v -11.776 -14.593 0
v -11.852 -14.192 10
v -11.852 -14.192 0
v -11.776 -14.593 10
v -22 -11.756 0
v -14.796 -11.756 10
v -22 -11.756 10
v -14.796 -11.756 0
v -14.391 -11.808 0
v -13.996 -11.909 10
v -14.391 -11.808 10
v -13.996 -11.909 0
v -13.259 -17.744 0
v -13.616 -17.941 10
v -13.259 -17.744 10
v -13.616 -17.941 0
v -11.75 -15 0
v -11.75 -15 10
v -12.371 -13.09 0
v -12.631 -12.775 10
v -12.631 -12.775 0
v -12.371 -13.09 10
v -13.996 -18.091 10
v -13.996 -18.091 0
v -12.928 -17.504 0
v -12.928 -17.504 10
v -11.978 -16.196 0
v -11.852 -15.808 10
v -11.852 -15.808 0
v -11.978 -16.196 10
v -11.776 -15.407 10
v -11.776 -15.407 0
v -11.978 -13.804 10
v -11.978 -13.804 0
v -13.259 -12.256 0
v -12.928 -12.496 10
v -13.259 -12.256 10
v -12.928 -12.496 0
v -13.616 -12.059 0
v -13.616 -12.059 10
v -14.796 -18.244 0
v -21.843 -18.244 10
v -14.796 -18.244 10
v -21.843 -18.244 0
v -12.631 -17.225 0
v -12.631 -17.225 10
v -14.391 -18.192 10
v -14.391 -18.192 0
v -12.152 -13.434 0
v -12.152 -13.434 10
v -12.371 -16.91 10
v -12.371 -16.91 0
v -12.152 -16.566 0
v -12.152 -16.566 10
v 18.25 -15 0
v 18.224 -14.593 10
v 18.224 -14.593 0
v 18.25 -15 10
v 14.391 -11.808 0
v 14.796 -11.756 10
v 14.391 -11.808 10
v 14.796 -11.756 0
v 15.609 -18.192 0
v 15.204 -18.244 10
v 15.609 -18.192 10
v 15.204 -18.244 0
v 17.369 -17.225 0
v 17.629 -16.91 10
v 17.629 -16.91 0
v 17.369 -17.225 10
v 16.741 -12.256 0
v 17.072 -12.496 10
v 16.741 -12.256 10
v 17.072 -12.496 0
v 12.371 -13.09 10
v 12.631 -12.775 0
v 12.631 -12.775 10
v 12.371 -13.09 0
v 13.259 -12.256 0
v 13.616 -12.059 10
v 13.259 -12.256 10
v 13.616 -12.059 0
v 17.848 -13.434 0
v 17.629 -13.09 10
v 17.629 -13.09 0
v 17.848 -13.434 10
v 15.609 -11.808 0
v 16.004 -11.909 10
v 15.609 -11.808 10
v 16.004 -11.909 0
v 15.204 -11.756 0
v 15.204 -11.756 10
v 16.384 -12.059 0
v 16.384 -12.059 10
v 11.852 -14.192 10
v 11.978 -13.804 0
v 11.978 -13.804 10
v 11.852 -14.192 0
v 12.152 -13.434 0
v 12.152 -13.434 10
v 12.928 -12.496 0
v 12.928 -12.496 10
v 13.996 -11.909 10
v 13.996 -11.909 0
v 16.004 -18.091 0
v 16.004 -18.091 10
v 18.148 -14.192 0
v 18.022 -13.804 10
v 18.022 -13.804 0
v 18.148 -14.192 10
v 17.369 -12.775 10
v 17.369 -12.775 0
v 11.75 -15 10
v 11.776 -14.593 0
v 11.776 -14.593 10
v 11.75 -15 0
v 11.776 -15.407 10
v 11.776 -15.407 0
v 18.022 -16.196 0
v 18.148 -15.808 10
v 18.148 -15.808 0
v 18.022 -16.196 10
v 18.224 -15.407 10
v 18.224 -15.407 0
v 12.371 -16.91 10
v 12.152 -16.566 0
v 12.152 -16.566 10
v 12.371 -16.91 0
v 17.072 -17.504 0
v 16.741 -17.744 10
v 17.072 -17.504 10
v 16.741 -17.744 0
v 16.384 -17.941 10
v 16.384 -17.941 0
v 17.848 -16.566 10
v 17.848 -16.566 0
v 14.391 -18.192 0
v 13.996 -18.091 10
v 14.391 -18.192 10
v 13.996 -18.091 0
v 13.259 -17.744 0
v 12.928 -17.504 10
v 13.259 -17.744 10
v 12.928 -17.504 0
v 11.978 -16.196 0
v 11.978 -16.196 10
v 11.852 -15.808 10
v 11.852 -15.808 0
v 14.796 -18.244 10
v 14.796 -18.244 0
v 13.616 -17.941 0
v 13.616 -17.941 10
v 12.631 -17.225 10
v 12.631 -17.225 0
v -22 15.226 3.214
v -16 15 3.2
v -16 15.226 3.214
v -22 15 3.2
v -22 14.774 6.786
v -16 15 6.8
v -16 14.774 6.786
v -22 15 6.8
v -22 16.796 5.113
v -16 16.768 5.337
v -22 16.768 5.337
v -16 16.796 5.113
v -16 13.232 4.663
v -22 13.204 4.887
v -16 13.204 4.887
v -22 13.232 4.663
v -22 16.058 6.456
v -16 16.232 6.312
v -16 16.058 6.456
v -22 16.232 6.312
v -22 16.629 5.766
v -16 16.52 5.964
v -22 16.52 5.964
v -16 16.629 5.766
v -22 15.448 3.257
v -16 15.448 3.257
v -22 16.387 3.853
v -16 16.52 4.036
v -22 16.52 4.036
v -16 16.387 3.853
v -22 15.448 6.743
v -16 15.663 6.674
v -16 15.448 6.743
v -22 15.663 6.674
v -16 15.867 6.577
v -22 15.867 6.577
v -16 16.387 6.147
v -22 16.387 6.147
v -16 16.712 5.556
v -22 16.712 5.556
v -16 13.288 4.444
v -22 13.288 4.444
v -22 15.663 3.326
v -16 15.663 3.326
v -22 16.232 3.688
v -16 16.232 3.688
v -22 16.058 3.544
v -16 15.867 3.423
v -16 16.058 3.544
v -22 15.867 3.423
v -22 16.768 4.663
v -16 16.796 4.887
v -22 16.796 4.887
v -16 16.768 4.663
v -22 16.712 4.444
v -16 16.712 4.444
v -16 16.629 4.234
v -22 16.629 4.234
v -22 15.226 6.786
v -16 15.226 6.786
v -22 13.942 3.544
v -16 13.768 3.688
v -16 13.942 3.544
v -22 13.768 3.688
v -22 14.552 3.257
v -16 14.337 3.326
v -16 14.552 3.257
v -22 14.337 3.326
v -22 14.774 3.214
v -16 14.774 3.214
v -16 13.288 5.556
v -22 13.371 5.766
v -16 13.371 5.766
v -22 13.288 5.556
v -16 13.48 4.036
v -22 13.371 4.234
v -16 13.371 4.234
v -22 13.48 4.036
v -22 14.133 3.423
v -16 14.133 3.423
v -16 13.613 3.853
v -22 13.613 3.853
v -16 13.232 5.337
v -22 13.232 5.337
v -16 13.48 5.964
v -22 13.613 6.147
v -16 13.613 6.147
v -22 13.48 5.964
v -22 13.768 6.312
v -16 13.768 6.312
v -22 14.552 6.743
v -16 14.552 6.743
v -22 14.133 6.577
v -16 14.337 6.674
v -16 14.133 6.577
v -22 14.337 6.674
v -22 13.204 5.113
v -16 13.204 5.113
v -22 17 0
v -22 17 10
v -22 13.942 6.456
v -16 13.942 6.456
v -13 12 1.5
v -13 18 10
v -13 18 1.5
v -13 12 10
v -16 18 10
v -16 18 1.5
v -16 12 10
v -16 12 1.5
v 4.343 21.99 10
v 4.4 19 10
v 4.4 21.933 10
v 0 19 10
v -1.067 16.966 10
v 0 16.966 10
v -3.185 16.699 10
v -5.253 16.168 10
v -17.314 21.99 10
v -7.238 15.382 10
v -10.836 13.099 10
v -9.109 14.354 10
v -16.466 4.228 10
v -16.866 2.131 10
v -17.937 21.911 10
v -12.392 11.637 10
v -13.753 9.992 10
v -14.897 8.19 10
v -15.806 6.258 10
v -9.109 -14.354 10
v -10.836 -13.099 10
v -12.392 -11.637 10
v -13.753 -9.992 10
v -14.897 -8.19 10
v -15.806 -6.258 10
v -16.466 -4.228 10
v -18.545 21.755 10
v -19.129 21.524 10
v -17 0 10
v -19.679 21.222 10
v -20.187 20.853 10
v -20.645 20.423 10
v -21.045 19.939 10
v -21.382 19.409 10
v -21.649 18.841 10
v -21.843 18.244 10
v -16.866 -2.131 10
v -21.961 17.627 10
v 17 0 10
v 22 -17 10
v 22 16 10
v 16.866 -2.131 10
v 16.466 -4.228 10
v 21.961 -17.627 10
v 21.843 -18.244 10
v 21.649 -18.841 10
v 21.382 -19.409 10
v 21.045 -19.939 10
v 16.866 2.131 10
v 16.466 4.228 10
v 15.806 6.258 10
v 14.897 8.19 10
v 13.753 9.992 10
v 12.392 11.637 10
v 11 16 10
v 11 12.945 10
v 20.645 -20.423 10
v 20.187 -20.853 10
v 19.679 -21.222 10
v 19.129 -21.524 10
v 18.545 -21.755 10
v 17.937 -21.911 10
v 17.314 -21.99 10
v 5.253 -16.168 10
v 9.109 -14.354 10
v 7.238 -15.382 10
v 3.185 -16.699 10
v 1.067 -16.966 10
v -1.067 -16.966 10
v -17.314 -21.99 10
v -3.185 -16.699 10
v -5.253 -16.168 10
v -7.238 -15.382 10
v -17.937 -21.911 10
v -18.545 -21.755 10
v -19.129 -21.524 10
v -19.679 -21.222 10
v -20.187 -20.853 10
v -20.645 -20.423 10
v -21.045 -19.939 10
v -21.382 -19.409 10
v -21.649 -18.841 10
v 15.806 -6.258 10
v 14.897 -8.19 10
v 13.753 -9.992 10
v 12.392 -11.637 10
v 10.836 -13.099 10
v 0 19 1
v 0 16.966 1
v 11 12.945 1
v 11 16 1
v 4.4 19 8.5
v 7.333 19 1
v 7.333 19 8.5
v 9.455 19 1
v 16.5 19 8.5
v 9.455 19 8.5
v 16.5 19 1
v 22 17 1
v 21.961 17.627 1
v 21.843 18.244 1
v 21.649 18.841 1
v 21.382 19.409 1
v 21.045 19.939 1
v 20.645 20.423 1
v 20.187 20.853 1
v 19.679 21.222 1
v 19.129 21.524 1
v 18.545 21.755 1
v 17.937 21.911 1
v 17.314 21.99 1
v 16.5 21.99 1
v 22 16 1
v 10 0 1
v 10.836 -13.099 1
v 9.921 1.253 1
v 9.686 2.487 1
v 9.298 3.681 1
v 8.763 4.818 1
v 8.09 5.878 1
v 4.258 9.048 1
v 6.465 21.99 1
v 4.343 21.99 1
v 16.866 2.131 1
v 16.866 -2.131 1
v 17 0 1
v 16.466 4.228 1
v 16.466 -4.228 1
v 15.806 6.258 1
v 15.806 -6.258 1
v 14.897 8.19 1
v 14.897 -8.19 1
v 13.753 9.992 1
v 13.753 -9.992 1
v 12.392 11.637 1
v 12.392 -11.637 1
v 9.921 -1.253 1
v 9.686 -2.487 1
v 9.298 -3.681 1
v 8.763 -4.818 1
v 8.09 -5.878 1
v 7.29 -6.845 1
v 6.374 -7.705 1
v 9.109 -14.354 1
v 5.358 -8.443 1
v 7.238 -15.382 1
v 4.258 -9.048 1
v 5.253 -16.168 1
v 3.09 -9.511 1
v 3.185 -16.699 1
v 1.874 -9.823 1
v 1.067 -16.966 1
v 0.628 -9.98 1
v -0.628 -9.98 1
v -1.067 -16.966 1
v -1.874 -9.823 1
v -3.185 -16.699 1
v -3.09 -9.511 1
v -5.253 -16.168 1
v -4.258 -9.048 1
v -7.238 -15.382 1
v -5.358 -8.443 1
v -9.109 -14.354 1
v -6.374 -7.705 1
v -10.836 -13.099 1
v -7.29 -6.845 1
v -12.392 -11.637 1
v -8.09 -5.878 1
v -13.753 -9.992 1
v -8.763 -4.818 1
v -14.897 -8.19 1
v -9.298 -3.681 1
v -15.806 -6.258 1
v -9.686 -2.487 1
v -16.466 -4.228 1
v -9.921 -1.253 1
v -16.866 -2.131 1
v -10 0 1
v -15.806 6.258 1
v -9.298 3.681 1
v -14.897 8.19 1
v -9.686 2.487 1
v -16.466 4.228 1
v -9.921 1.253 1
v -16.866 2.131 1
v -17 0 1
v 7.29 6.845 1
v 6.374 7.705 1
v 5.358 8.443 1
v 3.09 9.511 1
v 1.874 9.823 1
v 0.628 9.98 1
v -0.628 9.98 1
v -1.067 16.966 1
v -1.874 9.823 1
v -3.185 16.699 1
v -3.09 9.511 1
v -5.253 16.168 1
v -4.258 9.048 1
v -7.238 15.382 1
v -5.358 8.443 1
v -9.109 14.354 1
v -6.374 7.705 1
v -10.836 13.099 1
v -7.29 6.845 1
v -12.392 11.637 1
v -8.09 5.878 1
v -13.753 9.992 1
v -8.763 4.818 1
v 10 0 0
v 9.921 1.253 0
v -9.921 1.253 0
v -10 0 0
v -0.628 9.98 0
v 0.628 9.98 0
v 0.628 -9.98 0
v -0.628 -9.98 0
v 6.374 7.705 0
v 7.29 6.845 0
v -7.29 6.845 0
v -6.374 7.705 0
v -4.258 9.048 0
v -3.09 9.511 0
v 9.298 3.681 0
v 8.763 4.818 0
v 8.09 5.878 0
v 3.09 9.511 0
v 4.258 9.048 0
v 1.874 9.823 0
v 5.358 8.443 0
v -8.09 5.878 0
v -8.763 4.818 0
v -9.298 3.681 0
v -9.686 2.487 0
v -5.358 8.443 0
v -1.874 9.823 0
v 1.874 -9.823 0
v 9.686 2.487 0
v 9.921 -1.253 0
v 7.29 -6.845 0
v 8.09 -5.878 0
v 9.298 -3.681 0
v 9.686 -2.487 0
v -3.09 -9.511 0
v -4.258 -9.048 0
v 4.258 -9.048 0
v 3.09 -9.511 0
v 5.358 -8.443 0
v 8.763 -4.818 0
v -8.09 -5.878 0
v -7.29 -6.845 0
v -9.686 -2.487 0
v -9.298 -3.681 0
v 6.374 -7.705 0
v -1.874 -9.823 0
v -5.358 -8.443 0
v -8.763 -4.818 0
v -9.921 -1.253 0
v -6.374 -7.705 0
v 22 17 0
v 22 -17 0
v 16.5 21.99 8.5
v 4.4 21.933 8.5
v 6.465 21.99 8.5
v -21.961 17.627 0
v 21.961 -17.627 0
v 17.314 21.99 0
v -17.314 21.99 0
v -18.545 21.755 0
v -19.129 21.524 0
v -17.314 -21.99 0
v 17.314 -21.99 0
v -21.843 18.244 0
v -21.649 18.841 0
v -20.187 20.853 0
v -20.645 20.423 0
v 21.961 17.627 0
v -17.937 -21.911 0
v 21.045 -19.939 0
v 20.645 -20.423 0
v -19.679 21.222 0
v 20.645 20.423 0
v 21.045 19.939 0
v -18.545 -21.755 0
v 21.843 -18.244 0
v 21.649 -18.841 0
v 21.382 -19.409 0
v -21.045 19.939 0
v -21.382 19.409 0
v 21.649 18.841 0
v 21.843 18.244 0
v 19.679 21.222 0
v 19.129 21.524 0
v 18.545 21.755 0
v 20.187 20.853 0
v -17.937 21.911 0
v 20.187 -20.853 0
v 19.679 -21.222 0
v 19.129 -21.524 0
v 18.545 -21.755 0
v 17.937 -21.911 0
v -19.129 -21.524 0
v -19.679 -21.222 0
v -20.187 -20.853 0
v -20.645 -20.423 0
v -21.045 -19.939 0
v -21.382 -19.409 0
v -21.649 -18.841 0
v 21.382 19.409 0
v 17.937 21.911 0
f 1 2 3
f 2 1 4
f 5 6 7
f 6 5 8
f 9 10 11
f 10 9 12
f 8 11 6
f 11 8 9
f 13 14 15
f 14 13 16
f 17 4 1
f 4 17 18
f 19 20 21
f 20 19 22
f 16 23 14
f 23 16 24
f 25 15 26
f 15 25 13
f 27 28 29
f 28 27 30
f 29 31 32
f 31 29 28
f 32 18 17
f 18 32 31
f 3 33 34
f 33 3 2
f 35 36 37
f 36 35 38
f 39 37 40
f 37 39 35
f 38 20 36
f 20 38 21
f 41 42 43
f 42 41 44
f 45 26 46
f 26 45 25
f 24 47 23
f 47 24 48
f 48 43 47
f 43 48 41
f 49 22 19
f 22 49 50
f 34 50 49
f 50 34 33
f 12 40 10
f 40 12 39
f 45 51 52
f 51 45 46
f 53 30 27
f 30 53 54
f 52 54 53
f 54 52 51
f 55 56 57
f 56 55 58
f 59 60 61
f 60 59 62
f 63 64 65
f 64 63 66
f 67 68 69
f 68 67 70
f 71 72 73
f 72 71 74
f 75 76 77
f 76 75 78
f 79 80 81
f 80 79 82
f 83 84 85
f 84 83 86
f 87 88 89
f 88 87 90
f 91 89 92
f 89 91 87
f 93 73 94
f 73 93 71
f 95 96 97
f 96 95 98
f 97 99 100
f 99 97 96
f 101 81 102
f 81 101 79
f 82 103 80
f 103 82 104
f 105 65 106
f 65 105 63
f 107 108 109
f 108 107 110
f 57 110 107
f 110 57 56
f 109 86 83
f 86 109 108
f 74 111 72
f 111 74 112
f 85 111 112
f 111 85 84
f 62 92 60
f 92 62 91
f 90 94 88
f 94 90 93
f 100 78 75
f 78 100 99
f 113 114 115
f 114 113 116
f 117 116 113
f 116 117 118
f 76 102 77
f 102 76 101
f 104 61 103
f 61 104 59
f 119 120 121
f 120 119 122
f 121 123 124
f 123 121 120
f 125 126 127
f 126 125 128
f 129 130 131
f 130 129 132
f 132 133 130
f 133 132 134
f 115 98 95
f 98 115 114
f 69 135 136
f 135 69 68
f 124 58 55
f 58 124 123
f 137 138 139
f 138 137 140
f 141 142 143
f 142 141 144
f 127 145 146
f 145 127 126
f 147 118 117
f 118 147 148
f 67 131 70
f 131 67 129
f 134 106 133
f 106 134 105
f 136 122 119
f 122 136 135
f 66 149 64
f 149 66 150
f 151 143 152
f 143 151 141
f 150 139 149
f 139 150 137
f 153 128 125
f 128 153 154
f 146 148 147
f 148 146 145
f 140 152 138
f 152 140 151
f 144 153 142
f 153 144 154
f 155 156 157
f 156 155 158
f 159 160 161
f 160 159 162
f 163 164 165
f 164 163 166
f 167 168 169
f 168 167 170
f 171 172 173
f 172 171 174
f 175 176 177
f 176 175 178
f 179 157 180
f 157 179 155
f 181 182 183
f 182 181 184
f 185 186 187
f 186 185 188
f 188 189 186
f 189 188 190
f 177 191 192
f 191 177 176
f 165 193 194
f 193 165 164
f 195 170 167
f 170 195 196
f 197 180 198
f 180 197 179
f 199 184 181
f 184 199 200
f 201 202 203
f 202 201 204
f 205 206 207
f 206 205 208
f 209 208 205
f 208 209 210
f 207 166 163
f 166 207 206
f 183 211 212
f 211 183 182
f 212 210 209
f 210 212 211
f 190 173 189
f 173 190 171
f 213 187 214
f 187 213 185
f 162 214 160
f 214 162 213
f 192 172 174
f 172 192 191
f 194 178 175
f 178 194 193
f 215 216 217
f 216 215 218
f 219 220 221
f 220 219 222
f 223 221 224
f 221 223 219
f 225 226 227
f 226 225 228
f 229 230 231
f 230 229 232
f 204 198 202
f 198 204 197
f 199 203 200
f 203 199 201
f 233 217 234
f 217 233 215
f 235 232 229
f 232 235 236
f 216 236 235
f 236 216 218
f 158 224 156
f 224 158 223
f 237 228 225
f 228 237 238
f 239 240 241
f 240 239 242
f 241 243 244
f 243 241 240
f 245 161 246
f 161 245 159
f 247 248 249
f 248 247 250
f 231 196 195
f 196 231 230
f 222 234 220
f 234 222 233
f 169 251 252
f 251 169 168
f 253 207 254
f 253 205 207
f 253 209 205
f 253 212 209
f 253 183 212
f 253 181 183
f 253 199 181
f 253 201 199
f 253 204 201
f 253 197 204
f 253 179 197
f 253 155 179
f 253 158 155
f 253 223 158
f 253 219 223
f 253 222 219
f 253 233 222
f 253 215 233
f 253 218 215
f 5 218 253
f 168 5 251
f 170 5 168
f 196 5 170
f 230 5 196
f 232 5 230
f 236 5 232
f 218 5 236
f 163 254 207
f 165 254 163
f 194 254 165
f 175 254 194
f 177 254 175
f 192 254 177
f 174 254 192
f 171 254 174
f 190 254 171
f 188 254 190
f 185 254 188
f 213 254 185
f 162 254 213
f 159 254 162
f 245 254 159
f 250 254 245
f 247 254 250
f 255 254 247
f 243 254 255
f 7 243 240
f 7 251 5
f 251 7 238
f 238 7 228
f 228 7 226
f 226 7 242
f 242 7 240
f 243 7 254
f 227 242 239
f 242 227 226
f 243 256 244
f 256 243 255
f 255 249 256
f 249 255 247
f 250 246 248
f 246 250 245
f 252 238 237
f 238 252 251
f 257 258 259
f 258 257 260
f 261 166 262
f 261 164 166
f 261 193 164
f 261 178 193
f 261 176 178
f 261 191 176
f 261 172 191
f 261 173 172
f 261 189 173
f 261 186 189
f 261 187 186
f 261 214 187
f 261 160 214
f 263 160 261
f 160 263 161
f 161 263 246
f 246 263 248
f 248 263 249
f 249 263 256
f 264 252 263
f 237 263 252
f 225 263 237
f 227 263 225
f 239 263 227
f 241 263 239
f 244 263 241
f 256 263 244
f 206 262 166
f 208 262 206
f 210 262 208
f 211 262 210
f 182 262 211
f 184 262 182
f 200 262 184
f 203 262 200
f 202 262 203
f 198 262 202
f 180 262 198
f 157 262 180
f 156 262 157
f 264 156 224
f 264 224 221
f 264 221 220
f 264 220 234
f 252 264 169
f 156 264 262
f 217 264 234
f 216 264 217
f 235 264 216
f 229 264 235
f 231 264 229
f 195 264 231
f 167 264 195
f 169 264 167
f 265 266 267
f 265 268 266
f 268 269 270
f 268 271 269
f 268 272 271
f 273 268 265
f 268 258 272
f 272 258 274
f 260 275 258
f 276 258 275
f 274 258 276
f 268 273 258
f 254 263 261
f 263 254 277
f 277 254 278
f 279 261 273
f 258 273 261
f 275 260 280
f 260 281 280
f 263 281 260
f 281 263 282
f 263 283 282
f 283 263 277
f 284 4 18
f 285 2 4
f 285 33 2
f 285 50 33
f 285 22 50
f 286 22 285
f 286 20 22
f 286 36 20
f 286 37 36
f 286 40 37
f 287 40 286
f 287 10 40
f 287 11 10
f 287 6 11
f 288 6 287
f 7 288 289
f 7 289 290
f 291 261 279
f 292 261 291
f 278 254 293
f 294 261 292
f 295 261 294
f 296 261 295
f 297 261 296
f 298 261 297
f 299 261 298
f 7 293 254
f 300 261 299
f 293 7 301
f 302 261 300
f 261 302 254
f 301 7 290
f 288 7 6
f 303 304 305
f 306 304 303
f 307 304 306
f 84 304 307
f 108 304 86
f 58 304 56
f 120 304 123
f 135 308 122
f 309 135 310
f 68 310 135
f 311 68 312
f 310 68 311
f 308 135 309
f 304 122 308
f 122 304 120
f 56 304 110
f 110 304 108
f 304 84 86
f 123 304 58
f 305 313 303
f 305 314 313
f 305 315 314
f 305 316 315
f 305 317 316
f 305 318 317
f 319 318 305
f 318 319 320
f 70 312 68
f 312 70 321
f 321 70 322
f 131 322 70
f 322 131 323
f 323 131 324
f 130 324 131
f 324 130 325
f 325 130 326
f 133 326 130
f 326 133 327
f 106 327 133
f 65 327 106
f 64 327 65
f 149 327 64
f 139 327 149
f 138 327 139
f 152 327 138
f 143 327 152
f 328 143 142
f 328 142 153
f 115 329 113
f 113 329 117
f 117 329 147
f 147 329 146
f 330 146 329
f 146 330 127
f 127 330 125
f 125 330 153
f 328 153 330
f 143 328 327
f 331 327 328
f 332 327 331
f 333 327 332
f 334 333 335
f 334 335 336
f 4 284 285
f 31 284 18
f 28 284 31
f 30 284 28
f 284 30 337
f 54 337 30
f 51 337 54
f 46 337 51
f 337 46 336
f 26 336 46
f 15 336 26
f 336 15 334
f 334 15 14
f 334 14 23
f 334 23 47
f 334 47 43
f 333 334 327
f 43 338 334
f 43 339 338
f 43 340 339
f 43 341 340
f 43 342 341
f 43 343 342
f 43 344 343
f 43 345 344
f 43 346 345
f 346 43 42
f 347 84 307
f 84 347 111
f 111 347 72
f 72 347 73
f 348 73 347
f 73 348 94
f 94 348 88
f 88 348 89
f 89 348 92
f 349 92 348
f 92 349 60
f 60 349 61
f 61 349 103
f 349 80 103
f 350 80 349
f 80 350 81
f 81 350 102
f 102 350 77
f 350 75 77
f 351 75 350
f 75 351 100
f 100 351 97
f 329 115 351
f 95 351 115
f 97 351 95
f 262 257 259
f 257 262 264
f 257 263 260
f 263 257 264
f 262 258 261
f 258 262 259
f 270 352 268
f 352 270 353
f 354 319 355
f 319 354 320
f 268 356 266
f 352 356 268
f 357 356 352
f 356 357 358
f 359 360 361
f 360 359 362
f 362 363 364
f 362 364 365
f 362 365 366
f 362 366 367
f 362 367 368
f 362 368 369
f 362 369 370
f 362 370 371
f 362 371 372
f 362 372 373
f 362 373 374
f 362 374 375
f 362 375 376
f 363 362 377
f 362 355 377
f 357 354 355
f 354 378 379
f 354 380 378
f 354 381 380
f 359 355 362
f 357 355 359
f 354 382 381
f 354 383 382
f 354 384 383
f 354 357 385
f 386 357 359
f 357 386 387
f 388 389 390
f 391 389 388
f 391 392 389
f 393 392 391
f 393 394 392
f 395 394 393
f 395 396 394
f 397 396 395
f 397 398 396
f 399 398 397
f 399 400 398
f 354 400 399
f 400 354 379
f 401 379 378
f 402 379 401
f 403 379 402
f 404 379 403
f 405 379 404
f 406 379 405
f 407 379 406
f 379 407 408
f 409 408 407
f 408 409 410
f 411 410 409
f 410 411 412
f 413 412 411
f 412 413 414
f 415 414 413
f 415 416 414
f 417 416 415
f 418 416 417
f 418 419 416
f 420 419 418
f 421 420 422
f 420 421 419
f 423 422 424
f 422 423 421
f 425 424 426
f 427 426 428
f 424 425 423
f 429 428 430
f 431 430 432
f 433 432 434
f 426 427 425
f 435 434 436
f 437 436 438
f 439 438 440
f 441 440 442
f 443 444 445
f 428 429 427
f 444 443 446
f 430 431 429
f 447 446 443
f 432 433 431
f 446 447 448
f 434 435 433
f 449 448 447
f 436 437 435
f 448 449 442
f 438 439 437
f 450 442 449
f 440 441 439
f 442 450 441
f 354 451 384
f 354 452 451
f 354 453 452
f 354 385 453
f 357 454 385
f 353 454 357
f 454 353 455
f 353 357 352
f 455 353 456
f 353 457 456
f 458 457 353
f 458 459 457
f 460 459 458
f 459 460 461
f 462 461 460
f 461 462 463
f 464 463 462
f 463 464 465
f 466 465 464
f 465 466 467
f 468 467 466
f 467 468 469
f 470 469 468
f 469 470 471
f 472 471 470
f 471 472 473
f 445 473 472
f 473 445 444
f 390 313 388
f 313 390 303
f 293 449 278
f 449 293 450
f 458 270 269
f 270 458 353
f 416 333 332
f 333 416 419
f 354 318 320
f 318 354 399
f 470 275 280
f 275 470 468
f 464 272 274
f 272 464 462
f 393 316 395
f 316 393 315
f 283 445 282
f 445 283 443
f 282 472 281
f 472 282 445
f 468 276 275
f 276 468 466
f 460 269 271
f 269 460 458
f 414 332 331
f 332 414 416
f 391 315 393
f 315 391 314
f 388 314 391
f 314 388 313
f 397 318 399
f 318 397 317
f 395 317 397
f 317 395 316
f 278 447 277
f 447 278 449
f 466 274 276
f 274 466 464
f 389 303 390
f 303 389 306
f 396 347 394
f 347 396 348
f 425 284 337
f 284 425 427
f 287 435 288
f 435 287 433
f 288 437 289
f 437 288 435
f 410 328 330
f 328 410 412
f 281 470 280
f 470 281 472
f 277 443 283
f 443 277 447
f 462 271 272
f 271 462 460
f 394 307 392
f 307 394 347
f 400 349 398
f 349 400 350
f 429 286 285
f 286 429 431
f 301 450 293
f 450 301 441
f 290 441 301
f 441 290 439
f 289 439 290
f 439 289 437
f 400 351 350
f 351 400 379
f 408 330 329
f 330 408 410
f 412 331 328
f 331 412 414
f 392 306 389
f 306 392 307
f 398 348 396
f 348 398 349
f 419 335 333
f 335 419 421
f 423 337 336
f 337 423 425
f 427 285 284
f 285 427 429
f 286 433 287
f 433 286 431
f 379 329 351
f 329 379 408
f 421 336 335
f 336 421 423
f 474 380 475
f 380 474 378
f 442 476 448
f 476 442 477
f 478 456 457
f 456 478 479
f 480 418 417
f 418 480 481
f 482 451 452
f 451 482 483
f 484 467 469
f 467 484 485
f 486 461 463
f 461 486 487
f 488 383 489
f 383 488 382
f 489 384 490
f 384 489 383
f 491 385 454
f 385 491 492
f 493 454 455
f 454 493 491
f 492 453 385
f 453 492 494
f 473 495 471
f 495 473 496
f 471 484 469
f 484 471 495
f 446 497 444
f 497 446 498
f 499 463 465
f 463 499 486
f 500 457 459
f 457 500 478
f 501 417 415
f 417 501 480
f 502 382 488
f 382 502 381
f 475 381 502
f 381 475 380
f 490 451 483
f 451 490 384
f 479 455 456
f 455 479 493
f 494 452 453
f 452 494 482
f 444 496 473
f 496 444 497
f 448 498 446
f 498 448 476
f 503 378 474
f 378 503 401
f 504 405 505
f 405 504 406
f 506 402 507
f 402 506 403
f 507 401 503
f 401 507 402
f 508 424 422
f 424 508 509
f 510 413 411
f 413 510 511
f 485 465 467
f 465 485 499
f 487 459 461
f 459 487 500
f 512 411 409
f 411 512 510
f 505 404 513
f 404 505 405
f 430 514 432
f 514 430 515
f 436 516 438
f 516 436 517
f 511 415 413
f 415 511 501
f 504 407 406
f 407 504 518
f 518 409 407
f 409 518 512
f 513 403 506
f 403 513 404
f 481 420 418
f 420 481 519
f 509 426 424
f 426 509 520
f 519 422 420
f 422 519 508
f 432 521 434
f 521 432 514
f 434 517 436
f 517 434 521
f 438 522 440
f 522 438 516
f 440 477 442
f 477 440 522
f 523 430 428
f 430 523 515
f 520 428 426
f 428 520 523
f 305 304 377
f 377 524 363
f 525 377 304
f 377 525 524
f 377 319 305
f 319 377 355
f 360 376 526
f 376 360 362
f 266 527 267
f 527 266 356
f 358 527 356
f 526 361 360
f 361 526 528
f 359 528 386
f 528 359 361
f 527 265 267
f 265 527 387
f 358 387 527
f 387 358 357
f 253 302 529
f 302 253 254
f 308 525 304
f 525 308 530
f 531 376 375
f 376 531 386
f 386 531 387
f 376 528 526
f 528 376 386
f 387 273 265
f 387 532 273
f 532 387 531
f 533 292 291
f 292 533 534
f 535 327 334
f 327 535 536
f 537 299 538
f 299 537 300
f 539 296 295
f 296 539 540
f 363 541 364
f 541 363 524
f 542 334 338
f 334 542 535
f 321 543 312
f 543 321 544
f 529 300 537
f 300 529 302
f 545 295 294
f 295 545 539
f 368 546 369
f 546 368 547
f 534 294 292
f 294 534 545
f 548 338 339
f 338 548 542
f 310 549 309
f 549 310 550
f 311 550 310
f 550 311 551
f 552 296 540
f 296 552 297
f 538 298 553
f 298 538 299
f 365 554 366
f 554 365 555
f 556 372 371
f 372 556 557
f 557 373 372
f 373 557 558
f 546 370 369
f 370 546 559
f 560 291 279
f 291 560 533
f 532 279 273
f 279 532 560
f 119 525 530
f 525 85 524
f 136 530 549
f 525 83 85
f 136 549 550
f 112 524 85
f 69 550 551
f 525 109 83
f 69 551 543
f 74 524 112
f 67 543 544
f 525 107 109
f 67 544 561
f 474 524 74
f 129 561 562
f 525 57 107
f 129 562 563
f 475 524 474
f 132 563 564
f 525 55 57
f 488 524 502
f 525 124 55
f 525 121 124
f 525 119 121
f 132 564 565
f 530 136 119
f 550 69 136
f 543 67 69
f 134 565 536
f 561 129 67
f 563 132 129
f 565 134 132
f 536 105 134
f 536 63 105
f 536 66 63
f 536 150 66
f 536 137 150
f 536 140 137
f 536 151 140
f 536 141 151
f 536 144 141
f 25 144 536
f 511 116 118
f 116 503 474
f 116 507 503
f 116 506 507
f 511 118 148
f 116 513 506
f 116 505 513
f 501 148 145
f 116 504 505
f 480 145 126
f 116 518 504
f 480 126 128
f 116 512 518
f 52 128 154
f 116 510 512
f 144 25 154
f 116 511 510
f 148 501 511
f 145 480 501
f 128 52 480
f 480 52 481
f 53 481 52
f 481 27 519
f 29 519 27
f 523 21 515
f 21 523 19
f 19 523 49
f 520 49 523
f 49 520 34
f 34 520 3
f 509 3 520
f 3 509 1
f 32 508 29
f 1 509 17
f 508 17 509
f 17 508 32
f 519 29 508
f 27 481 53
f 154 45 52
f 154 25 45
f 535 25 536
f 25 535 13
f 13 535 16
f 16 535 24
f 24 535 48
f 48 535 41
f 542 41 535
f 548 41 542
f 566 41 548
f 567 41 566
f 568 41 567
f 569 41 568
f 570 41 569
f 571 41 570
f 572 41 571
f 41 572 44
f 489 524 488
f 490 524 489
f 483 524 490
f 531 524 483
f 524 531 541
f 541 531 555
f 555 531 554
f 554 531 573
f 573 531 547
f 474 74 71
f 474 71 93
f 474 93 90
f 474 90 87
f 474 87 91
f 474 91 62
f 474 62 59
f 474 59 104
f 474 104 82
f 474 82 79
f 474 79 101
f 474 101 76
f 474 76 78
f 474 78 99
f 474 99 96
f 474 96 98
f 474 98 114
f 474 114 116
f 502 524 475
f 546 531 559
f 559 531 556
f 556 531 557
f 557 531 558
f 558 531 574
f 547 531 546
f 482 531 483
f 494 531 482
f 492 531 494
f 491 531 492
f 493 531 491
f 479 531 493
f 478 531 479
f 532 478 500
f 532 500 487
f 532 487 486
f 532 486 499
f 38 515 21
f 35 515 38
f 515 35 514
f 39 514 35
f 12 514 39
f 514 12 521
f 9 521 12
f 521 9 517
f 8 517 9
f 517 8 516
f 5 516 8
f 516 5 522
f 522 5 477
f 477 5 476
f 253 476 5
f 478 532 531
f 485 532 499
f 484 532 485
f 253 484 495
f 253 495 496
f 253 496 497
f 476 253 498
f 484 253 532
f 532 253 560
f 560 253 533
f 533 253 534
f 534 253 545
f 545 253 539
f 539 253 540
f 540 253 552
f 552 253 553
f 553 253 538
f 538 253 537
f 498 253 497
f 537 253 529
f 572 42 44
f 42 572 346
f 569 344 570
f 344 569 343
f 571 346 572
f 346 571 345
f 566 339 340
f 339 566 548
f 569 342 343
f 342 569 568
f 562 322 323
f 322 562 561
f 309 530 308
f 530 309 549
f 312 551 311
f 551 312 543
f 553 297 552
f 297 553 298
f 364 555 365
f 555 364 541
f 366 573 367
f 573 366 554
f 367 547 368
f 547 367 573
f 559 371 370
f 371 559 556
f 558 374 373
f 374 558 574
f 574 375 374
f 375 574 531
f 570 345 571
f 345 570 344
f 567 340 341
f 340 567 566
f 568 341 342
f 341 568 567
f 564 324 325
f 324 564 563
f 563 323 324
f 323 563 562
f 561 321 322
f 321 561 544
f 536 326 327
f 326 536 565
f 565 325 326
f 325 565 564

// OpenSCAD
$fn = 50;


difference() {
	union() {
		translate(v = [0, 0, 0]) {
			rotate(a = [0, 0, 0]) {
				hull() {
					translate(v = [-17.0000000000, 17.0000000000, 0]) {
						rotate(a = [0, 0, 0]) {
							translate(v = [0, 0, 0]) {
								rotate(a = [0, 0, 0]) {
									cylinder(h = 10, r = 5);
								}
							}
						}
					}
					translate(v = [17.0000000000, 17.0000000000, 0]) {
						rotate(a = [0, 0, 0]) {
							translate(v = [0, 0, 0]) {
								rotate(a = [0, 0, 0]) {
									cylinder(h = 10, r = 5);
								}
							}
						}
					}
					translate(v = [-17.0000000000, -17.0000000000, 0]) {
						rotate(a = [0, 0, 0]) {
							translate(v = [0, 0, 0]) {
								rotate(a = [0, 0, 0]) {
									cylinder(h = 10, r = 5);
								}
							}
						}
					}
					translate(v = [17.0000000000, -17.0000000000, 0]) {
						rotate(a = [0, 0, 0]) {
							translate(v = [0, 0, 0]) {
								rotate(a = [0, 0, 0]) {
									cylinder(h = 10, r = 5);
								}
							}
						}
					}
				}
			}
		}
	}
	union() {
		translate(v = [-22.5000000000, -15.0000000000, -125]) {
			rotate(a = [0, 0, 0]) {
				hull() {
					translate(v = [7.5000000000, 0, 0]) {
						rotate(a = [0, 0, 0]) {
							translate(v = [0, 0, 0]) {
								rotate(a = [0, 0, 0]) {
									cylinder(h = 250, r = 3.2500000000);
								}
							}
						}
					}
					translate(v = [-7.5000000000, 0, 0]) {
						rotate(a = [0, 0, 0]) {
							translate(v = [0, 0, 0]) {
								rotate(a = [0, 0, 0]) {
									cylinder(h = 250, r = 3.2500000000);
								}
							}
						}
					}
				}
			}
		}
		translate(v = [15.0000000000, -15.0000000000, -125.0000000000]) {
			rotate(a = [0, 0, 0]) {
				cylinder(h = 250, r = 3.2500000000);
			}
		}
		translate(v = [-22.0000000000, 15.0000000000, 5.0000000000]) {
			rotate(a = [0, 90, 0]) {
				cylinder(h = 9, r = 1.8000000000);
			}
		}
		translate(v = [-16.0000000000, 12.0000000000, 1.5000000000]) {
			rotate(a = [0, 0, 0]) {
				cube(size = [3, 6, 8.5000000000]);
			}
		}
		translate(v = [0.0000000000, 11.0000000000, 1.0000000000]) {
			rotate(a = [0, 0, 0]) {
				cube(size = [11, 8, 12]);
			}
		}
		translate(v = [0, 0, 1.0000000000]) {
			rotate(a = [0, 0, 0]) {
				cylinder(h = 12, r = 17.0000000000);
			}
		}
		translate(v = [0, 0, -5.0000000000]) {
			rotate(a = [0, 0, 0]) {
				cylinder(h = 10, r = 10.0000000000);
			}
		}
		translate(v = [0.0000000000, 16.0000000000, 1]) {
			rotate(a = [0, 0, 0]) {
				cube(size = [22.0000000000, 3, 12]);
			}
		}
		translate(v = [16.5000000000, 16.0000000000, 1]) {
			rotate(a = [0, 0, 0]) {
				cube(size = [5.5000000000, 6, 12]);
			}
		}
		translate(v = [4.4000000000, 16.0000000000, 8.5000000000]) {
			rotate(a = [0, 0, 0]) {
				cube(size = [17.6000000000, 6, 1.5000000000]);
			}
		}
		translate(v = [3.5833333333, 22.7500000000, 1]) {
			rotate(a = [0, 0, -45]) {
				cube(size = [7.5000000000, 1.5000000000, 12]);
			}
		}
	}
}
